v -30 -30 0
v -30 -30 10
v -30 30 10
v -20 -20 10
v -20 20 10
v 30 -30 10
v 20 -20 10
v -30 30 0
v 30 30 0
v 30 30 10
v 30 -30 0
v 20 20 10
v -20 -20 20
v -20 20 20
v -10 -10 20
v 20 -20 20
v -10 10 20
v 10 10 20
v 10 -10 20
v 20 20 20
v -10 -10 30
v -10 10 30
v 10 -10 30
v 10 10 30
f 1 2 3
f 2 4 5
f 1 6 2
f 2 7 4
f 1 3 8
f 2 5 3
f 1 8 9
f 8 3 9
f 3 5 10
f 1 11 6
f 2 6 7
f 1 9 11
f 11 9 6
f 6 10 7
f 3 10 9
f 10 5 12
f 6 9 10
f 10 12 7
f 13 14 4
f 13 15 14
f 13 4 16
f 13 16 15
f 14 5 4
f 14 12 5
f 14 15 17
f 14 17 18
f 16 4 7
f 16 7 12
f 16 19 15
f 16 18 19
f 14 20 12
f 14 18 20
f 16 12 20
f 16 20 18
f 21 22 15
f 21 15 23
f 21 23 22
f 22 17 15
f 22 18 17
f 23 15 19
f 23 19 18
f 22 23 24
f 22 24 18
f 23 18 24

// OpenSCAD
// 3段の階段状ピラミッド
// 各段は中心を揃えて積み上げる

step_sizes = [60, 40, 20];  // 各段の一辺の長さ (mm)
step_height = 10;           // 各段の高さ (mm)

module stepped_pyramid(sizes, h) {
    for (i = [0 : len(sizes) - 1]) {
        translate([0, 0, i * h])
            cube([sizes[i], sizes[i], h], center = false);
    }
}

// 中心を揃えるために各段を平行移動して配置
module stepped_pyramid_centered(sizes, h) {
    for (i = [0 : len(sizes) - 1]) {
        translate([0, 0, i * h + h / 2])
            cube([sizes[i], sizes[i], h], center = true);
    }
}

stepped_pyramid_centered(step_sizes, step_height);
